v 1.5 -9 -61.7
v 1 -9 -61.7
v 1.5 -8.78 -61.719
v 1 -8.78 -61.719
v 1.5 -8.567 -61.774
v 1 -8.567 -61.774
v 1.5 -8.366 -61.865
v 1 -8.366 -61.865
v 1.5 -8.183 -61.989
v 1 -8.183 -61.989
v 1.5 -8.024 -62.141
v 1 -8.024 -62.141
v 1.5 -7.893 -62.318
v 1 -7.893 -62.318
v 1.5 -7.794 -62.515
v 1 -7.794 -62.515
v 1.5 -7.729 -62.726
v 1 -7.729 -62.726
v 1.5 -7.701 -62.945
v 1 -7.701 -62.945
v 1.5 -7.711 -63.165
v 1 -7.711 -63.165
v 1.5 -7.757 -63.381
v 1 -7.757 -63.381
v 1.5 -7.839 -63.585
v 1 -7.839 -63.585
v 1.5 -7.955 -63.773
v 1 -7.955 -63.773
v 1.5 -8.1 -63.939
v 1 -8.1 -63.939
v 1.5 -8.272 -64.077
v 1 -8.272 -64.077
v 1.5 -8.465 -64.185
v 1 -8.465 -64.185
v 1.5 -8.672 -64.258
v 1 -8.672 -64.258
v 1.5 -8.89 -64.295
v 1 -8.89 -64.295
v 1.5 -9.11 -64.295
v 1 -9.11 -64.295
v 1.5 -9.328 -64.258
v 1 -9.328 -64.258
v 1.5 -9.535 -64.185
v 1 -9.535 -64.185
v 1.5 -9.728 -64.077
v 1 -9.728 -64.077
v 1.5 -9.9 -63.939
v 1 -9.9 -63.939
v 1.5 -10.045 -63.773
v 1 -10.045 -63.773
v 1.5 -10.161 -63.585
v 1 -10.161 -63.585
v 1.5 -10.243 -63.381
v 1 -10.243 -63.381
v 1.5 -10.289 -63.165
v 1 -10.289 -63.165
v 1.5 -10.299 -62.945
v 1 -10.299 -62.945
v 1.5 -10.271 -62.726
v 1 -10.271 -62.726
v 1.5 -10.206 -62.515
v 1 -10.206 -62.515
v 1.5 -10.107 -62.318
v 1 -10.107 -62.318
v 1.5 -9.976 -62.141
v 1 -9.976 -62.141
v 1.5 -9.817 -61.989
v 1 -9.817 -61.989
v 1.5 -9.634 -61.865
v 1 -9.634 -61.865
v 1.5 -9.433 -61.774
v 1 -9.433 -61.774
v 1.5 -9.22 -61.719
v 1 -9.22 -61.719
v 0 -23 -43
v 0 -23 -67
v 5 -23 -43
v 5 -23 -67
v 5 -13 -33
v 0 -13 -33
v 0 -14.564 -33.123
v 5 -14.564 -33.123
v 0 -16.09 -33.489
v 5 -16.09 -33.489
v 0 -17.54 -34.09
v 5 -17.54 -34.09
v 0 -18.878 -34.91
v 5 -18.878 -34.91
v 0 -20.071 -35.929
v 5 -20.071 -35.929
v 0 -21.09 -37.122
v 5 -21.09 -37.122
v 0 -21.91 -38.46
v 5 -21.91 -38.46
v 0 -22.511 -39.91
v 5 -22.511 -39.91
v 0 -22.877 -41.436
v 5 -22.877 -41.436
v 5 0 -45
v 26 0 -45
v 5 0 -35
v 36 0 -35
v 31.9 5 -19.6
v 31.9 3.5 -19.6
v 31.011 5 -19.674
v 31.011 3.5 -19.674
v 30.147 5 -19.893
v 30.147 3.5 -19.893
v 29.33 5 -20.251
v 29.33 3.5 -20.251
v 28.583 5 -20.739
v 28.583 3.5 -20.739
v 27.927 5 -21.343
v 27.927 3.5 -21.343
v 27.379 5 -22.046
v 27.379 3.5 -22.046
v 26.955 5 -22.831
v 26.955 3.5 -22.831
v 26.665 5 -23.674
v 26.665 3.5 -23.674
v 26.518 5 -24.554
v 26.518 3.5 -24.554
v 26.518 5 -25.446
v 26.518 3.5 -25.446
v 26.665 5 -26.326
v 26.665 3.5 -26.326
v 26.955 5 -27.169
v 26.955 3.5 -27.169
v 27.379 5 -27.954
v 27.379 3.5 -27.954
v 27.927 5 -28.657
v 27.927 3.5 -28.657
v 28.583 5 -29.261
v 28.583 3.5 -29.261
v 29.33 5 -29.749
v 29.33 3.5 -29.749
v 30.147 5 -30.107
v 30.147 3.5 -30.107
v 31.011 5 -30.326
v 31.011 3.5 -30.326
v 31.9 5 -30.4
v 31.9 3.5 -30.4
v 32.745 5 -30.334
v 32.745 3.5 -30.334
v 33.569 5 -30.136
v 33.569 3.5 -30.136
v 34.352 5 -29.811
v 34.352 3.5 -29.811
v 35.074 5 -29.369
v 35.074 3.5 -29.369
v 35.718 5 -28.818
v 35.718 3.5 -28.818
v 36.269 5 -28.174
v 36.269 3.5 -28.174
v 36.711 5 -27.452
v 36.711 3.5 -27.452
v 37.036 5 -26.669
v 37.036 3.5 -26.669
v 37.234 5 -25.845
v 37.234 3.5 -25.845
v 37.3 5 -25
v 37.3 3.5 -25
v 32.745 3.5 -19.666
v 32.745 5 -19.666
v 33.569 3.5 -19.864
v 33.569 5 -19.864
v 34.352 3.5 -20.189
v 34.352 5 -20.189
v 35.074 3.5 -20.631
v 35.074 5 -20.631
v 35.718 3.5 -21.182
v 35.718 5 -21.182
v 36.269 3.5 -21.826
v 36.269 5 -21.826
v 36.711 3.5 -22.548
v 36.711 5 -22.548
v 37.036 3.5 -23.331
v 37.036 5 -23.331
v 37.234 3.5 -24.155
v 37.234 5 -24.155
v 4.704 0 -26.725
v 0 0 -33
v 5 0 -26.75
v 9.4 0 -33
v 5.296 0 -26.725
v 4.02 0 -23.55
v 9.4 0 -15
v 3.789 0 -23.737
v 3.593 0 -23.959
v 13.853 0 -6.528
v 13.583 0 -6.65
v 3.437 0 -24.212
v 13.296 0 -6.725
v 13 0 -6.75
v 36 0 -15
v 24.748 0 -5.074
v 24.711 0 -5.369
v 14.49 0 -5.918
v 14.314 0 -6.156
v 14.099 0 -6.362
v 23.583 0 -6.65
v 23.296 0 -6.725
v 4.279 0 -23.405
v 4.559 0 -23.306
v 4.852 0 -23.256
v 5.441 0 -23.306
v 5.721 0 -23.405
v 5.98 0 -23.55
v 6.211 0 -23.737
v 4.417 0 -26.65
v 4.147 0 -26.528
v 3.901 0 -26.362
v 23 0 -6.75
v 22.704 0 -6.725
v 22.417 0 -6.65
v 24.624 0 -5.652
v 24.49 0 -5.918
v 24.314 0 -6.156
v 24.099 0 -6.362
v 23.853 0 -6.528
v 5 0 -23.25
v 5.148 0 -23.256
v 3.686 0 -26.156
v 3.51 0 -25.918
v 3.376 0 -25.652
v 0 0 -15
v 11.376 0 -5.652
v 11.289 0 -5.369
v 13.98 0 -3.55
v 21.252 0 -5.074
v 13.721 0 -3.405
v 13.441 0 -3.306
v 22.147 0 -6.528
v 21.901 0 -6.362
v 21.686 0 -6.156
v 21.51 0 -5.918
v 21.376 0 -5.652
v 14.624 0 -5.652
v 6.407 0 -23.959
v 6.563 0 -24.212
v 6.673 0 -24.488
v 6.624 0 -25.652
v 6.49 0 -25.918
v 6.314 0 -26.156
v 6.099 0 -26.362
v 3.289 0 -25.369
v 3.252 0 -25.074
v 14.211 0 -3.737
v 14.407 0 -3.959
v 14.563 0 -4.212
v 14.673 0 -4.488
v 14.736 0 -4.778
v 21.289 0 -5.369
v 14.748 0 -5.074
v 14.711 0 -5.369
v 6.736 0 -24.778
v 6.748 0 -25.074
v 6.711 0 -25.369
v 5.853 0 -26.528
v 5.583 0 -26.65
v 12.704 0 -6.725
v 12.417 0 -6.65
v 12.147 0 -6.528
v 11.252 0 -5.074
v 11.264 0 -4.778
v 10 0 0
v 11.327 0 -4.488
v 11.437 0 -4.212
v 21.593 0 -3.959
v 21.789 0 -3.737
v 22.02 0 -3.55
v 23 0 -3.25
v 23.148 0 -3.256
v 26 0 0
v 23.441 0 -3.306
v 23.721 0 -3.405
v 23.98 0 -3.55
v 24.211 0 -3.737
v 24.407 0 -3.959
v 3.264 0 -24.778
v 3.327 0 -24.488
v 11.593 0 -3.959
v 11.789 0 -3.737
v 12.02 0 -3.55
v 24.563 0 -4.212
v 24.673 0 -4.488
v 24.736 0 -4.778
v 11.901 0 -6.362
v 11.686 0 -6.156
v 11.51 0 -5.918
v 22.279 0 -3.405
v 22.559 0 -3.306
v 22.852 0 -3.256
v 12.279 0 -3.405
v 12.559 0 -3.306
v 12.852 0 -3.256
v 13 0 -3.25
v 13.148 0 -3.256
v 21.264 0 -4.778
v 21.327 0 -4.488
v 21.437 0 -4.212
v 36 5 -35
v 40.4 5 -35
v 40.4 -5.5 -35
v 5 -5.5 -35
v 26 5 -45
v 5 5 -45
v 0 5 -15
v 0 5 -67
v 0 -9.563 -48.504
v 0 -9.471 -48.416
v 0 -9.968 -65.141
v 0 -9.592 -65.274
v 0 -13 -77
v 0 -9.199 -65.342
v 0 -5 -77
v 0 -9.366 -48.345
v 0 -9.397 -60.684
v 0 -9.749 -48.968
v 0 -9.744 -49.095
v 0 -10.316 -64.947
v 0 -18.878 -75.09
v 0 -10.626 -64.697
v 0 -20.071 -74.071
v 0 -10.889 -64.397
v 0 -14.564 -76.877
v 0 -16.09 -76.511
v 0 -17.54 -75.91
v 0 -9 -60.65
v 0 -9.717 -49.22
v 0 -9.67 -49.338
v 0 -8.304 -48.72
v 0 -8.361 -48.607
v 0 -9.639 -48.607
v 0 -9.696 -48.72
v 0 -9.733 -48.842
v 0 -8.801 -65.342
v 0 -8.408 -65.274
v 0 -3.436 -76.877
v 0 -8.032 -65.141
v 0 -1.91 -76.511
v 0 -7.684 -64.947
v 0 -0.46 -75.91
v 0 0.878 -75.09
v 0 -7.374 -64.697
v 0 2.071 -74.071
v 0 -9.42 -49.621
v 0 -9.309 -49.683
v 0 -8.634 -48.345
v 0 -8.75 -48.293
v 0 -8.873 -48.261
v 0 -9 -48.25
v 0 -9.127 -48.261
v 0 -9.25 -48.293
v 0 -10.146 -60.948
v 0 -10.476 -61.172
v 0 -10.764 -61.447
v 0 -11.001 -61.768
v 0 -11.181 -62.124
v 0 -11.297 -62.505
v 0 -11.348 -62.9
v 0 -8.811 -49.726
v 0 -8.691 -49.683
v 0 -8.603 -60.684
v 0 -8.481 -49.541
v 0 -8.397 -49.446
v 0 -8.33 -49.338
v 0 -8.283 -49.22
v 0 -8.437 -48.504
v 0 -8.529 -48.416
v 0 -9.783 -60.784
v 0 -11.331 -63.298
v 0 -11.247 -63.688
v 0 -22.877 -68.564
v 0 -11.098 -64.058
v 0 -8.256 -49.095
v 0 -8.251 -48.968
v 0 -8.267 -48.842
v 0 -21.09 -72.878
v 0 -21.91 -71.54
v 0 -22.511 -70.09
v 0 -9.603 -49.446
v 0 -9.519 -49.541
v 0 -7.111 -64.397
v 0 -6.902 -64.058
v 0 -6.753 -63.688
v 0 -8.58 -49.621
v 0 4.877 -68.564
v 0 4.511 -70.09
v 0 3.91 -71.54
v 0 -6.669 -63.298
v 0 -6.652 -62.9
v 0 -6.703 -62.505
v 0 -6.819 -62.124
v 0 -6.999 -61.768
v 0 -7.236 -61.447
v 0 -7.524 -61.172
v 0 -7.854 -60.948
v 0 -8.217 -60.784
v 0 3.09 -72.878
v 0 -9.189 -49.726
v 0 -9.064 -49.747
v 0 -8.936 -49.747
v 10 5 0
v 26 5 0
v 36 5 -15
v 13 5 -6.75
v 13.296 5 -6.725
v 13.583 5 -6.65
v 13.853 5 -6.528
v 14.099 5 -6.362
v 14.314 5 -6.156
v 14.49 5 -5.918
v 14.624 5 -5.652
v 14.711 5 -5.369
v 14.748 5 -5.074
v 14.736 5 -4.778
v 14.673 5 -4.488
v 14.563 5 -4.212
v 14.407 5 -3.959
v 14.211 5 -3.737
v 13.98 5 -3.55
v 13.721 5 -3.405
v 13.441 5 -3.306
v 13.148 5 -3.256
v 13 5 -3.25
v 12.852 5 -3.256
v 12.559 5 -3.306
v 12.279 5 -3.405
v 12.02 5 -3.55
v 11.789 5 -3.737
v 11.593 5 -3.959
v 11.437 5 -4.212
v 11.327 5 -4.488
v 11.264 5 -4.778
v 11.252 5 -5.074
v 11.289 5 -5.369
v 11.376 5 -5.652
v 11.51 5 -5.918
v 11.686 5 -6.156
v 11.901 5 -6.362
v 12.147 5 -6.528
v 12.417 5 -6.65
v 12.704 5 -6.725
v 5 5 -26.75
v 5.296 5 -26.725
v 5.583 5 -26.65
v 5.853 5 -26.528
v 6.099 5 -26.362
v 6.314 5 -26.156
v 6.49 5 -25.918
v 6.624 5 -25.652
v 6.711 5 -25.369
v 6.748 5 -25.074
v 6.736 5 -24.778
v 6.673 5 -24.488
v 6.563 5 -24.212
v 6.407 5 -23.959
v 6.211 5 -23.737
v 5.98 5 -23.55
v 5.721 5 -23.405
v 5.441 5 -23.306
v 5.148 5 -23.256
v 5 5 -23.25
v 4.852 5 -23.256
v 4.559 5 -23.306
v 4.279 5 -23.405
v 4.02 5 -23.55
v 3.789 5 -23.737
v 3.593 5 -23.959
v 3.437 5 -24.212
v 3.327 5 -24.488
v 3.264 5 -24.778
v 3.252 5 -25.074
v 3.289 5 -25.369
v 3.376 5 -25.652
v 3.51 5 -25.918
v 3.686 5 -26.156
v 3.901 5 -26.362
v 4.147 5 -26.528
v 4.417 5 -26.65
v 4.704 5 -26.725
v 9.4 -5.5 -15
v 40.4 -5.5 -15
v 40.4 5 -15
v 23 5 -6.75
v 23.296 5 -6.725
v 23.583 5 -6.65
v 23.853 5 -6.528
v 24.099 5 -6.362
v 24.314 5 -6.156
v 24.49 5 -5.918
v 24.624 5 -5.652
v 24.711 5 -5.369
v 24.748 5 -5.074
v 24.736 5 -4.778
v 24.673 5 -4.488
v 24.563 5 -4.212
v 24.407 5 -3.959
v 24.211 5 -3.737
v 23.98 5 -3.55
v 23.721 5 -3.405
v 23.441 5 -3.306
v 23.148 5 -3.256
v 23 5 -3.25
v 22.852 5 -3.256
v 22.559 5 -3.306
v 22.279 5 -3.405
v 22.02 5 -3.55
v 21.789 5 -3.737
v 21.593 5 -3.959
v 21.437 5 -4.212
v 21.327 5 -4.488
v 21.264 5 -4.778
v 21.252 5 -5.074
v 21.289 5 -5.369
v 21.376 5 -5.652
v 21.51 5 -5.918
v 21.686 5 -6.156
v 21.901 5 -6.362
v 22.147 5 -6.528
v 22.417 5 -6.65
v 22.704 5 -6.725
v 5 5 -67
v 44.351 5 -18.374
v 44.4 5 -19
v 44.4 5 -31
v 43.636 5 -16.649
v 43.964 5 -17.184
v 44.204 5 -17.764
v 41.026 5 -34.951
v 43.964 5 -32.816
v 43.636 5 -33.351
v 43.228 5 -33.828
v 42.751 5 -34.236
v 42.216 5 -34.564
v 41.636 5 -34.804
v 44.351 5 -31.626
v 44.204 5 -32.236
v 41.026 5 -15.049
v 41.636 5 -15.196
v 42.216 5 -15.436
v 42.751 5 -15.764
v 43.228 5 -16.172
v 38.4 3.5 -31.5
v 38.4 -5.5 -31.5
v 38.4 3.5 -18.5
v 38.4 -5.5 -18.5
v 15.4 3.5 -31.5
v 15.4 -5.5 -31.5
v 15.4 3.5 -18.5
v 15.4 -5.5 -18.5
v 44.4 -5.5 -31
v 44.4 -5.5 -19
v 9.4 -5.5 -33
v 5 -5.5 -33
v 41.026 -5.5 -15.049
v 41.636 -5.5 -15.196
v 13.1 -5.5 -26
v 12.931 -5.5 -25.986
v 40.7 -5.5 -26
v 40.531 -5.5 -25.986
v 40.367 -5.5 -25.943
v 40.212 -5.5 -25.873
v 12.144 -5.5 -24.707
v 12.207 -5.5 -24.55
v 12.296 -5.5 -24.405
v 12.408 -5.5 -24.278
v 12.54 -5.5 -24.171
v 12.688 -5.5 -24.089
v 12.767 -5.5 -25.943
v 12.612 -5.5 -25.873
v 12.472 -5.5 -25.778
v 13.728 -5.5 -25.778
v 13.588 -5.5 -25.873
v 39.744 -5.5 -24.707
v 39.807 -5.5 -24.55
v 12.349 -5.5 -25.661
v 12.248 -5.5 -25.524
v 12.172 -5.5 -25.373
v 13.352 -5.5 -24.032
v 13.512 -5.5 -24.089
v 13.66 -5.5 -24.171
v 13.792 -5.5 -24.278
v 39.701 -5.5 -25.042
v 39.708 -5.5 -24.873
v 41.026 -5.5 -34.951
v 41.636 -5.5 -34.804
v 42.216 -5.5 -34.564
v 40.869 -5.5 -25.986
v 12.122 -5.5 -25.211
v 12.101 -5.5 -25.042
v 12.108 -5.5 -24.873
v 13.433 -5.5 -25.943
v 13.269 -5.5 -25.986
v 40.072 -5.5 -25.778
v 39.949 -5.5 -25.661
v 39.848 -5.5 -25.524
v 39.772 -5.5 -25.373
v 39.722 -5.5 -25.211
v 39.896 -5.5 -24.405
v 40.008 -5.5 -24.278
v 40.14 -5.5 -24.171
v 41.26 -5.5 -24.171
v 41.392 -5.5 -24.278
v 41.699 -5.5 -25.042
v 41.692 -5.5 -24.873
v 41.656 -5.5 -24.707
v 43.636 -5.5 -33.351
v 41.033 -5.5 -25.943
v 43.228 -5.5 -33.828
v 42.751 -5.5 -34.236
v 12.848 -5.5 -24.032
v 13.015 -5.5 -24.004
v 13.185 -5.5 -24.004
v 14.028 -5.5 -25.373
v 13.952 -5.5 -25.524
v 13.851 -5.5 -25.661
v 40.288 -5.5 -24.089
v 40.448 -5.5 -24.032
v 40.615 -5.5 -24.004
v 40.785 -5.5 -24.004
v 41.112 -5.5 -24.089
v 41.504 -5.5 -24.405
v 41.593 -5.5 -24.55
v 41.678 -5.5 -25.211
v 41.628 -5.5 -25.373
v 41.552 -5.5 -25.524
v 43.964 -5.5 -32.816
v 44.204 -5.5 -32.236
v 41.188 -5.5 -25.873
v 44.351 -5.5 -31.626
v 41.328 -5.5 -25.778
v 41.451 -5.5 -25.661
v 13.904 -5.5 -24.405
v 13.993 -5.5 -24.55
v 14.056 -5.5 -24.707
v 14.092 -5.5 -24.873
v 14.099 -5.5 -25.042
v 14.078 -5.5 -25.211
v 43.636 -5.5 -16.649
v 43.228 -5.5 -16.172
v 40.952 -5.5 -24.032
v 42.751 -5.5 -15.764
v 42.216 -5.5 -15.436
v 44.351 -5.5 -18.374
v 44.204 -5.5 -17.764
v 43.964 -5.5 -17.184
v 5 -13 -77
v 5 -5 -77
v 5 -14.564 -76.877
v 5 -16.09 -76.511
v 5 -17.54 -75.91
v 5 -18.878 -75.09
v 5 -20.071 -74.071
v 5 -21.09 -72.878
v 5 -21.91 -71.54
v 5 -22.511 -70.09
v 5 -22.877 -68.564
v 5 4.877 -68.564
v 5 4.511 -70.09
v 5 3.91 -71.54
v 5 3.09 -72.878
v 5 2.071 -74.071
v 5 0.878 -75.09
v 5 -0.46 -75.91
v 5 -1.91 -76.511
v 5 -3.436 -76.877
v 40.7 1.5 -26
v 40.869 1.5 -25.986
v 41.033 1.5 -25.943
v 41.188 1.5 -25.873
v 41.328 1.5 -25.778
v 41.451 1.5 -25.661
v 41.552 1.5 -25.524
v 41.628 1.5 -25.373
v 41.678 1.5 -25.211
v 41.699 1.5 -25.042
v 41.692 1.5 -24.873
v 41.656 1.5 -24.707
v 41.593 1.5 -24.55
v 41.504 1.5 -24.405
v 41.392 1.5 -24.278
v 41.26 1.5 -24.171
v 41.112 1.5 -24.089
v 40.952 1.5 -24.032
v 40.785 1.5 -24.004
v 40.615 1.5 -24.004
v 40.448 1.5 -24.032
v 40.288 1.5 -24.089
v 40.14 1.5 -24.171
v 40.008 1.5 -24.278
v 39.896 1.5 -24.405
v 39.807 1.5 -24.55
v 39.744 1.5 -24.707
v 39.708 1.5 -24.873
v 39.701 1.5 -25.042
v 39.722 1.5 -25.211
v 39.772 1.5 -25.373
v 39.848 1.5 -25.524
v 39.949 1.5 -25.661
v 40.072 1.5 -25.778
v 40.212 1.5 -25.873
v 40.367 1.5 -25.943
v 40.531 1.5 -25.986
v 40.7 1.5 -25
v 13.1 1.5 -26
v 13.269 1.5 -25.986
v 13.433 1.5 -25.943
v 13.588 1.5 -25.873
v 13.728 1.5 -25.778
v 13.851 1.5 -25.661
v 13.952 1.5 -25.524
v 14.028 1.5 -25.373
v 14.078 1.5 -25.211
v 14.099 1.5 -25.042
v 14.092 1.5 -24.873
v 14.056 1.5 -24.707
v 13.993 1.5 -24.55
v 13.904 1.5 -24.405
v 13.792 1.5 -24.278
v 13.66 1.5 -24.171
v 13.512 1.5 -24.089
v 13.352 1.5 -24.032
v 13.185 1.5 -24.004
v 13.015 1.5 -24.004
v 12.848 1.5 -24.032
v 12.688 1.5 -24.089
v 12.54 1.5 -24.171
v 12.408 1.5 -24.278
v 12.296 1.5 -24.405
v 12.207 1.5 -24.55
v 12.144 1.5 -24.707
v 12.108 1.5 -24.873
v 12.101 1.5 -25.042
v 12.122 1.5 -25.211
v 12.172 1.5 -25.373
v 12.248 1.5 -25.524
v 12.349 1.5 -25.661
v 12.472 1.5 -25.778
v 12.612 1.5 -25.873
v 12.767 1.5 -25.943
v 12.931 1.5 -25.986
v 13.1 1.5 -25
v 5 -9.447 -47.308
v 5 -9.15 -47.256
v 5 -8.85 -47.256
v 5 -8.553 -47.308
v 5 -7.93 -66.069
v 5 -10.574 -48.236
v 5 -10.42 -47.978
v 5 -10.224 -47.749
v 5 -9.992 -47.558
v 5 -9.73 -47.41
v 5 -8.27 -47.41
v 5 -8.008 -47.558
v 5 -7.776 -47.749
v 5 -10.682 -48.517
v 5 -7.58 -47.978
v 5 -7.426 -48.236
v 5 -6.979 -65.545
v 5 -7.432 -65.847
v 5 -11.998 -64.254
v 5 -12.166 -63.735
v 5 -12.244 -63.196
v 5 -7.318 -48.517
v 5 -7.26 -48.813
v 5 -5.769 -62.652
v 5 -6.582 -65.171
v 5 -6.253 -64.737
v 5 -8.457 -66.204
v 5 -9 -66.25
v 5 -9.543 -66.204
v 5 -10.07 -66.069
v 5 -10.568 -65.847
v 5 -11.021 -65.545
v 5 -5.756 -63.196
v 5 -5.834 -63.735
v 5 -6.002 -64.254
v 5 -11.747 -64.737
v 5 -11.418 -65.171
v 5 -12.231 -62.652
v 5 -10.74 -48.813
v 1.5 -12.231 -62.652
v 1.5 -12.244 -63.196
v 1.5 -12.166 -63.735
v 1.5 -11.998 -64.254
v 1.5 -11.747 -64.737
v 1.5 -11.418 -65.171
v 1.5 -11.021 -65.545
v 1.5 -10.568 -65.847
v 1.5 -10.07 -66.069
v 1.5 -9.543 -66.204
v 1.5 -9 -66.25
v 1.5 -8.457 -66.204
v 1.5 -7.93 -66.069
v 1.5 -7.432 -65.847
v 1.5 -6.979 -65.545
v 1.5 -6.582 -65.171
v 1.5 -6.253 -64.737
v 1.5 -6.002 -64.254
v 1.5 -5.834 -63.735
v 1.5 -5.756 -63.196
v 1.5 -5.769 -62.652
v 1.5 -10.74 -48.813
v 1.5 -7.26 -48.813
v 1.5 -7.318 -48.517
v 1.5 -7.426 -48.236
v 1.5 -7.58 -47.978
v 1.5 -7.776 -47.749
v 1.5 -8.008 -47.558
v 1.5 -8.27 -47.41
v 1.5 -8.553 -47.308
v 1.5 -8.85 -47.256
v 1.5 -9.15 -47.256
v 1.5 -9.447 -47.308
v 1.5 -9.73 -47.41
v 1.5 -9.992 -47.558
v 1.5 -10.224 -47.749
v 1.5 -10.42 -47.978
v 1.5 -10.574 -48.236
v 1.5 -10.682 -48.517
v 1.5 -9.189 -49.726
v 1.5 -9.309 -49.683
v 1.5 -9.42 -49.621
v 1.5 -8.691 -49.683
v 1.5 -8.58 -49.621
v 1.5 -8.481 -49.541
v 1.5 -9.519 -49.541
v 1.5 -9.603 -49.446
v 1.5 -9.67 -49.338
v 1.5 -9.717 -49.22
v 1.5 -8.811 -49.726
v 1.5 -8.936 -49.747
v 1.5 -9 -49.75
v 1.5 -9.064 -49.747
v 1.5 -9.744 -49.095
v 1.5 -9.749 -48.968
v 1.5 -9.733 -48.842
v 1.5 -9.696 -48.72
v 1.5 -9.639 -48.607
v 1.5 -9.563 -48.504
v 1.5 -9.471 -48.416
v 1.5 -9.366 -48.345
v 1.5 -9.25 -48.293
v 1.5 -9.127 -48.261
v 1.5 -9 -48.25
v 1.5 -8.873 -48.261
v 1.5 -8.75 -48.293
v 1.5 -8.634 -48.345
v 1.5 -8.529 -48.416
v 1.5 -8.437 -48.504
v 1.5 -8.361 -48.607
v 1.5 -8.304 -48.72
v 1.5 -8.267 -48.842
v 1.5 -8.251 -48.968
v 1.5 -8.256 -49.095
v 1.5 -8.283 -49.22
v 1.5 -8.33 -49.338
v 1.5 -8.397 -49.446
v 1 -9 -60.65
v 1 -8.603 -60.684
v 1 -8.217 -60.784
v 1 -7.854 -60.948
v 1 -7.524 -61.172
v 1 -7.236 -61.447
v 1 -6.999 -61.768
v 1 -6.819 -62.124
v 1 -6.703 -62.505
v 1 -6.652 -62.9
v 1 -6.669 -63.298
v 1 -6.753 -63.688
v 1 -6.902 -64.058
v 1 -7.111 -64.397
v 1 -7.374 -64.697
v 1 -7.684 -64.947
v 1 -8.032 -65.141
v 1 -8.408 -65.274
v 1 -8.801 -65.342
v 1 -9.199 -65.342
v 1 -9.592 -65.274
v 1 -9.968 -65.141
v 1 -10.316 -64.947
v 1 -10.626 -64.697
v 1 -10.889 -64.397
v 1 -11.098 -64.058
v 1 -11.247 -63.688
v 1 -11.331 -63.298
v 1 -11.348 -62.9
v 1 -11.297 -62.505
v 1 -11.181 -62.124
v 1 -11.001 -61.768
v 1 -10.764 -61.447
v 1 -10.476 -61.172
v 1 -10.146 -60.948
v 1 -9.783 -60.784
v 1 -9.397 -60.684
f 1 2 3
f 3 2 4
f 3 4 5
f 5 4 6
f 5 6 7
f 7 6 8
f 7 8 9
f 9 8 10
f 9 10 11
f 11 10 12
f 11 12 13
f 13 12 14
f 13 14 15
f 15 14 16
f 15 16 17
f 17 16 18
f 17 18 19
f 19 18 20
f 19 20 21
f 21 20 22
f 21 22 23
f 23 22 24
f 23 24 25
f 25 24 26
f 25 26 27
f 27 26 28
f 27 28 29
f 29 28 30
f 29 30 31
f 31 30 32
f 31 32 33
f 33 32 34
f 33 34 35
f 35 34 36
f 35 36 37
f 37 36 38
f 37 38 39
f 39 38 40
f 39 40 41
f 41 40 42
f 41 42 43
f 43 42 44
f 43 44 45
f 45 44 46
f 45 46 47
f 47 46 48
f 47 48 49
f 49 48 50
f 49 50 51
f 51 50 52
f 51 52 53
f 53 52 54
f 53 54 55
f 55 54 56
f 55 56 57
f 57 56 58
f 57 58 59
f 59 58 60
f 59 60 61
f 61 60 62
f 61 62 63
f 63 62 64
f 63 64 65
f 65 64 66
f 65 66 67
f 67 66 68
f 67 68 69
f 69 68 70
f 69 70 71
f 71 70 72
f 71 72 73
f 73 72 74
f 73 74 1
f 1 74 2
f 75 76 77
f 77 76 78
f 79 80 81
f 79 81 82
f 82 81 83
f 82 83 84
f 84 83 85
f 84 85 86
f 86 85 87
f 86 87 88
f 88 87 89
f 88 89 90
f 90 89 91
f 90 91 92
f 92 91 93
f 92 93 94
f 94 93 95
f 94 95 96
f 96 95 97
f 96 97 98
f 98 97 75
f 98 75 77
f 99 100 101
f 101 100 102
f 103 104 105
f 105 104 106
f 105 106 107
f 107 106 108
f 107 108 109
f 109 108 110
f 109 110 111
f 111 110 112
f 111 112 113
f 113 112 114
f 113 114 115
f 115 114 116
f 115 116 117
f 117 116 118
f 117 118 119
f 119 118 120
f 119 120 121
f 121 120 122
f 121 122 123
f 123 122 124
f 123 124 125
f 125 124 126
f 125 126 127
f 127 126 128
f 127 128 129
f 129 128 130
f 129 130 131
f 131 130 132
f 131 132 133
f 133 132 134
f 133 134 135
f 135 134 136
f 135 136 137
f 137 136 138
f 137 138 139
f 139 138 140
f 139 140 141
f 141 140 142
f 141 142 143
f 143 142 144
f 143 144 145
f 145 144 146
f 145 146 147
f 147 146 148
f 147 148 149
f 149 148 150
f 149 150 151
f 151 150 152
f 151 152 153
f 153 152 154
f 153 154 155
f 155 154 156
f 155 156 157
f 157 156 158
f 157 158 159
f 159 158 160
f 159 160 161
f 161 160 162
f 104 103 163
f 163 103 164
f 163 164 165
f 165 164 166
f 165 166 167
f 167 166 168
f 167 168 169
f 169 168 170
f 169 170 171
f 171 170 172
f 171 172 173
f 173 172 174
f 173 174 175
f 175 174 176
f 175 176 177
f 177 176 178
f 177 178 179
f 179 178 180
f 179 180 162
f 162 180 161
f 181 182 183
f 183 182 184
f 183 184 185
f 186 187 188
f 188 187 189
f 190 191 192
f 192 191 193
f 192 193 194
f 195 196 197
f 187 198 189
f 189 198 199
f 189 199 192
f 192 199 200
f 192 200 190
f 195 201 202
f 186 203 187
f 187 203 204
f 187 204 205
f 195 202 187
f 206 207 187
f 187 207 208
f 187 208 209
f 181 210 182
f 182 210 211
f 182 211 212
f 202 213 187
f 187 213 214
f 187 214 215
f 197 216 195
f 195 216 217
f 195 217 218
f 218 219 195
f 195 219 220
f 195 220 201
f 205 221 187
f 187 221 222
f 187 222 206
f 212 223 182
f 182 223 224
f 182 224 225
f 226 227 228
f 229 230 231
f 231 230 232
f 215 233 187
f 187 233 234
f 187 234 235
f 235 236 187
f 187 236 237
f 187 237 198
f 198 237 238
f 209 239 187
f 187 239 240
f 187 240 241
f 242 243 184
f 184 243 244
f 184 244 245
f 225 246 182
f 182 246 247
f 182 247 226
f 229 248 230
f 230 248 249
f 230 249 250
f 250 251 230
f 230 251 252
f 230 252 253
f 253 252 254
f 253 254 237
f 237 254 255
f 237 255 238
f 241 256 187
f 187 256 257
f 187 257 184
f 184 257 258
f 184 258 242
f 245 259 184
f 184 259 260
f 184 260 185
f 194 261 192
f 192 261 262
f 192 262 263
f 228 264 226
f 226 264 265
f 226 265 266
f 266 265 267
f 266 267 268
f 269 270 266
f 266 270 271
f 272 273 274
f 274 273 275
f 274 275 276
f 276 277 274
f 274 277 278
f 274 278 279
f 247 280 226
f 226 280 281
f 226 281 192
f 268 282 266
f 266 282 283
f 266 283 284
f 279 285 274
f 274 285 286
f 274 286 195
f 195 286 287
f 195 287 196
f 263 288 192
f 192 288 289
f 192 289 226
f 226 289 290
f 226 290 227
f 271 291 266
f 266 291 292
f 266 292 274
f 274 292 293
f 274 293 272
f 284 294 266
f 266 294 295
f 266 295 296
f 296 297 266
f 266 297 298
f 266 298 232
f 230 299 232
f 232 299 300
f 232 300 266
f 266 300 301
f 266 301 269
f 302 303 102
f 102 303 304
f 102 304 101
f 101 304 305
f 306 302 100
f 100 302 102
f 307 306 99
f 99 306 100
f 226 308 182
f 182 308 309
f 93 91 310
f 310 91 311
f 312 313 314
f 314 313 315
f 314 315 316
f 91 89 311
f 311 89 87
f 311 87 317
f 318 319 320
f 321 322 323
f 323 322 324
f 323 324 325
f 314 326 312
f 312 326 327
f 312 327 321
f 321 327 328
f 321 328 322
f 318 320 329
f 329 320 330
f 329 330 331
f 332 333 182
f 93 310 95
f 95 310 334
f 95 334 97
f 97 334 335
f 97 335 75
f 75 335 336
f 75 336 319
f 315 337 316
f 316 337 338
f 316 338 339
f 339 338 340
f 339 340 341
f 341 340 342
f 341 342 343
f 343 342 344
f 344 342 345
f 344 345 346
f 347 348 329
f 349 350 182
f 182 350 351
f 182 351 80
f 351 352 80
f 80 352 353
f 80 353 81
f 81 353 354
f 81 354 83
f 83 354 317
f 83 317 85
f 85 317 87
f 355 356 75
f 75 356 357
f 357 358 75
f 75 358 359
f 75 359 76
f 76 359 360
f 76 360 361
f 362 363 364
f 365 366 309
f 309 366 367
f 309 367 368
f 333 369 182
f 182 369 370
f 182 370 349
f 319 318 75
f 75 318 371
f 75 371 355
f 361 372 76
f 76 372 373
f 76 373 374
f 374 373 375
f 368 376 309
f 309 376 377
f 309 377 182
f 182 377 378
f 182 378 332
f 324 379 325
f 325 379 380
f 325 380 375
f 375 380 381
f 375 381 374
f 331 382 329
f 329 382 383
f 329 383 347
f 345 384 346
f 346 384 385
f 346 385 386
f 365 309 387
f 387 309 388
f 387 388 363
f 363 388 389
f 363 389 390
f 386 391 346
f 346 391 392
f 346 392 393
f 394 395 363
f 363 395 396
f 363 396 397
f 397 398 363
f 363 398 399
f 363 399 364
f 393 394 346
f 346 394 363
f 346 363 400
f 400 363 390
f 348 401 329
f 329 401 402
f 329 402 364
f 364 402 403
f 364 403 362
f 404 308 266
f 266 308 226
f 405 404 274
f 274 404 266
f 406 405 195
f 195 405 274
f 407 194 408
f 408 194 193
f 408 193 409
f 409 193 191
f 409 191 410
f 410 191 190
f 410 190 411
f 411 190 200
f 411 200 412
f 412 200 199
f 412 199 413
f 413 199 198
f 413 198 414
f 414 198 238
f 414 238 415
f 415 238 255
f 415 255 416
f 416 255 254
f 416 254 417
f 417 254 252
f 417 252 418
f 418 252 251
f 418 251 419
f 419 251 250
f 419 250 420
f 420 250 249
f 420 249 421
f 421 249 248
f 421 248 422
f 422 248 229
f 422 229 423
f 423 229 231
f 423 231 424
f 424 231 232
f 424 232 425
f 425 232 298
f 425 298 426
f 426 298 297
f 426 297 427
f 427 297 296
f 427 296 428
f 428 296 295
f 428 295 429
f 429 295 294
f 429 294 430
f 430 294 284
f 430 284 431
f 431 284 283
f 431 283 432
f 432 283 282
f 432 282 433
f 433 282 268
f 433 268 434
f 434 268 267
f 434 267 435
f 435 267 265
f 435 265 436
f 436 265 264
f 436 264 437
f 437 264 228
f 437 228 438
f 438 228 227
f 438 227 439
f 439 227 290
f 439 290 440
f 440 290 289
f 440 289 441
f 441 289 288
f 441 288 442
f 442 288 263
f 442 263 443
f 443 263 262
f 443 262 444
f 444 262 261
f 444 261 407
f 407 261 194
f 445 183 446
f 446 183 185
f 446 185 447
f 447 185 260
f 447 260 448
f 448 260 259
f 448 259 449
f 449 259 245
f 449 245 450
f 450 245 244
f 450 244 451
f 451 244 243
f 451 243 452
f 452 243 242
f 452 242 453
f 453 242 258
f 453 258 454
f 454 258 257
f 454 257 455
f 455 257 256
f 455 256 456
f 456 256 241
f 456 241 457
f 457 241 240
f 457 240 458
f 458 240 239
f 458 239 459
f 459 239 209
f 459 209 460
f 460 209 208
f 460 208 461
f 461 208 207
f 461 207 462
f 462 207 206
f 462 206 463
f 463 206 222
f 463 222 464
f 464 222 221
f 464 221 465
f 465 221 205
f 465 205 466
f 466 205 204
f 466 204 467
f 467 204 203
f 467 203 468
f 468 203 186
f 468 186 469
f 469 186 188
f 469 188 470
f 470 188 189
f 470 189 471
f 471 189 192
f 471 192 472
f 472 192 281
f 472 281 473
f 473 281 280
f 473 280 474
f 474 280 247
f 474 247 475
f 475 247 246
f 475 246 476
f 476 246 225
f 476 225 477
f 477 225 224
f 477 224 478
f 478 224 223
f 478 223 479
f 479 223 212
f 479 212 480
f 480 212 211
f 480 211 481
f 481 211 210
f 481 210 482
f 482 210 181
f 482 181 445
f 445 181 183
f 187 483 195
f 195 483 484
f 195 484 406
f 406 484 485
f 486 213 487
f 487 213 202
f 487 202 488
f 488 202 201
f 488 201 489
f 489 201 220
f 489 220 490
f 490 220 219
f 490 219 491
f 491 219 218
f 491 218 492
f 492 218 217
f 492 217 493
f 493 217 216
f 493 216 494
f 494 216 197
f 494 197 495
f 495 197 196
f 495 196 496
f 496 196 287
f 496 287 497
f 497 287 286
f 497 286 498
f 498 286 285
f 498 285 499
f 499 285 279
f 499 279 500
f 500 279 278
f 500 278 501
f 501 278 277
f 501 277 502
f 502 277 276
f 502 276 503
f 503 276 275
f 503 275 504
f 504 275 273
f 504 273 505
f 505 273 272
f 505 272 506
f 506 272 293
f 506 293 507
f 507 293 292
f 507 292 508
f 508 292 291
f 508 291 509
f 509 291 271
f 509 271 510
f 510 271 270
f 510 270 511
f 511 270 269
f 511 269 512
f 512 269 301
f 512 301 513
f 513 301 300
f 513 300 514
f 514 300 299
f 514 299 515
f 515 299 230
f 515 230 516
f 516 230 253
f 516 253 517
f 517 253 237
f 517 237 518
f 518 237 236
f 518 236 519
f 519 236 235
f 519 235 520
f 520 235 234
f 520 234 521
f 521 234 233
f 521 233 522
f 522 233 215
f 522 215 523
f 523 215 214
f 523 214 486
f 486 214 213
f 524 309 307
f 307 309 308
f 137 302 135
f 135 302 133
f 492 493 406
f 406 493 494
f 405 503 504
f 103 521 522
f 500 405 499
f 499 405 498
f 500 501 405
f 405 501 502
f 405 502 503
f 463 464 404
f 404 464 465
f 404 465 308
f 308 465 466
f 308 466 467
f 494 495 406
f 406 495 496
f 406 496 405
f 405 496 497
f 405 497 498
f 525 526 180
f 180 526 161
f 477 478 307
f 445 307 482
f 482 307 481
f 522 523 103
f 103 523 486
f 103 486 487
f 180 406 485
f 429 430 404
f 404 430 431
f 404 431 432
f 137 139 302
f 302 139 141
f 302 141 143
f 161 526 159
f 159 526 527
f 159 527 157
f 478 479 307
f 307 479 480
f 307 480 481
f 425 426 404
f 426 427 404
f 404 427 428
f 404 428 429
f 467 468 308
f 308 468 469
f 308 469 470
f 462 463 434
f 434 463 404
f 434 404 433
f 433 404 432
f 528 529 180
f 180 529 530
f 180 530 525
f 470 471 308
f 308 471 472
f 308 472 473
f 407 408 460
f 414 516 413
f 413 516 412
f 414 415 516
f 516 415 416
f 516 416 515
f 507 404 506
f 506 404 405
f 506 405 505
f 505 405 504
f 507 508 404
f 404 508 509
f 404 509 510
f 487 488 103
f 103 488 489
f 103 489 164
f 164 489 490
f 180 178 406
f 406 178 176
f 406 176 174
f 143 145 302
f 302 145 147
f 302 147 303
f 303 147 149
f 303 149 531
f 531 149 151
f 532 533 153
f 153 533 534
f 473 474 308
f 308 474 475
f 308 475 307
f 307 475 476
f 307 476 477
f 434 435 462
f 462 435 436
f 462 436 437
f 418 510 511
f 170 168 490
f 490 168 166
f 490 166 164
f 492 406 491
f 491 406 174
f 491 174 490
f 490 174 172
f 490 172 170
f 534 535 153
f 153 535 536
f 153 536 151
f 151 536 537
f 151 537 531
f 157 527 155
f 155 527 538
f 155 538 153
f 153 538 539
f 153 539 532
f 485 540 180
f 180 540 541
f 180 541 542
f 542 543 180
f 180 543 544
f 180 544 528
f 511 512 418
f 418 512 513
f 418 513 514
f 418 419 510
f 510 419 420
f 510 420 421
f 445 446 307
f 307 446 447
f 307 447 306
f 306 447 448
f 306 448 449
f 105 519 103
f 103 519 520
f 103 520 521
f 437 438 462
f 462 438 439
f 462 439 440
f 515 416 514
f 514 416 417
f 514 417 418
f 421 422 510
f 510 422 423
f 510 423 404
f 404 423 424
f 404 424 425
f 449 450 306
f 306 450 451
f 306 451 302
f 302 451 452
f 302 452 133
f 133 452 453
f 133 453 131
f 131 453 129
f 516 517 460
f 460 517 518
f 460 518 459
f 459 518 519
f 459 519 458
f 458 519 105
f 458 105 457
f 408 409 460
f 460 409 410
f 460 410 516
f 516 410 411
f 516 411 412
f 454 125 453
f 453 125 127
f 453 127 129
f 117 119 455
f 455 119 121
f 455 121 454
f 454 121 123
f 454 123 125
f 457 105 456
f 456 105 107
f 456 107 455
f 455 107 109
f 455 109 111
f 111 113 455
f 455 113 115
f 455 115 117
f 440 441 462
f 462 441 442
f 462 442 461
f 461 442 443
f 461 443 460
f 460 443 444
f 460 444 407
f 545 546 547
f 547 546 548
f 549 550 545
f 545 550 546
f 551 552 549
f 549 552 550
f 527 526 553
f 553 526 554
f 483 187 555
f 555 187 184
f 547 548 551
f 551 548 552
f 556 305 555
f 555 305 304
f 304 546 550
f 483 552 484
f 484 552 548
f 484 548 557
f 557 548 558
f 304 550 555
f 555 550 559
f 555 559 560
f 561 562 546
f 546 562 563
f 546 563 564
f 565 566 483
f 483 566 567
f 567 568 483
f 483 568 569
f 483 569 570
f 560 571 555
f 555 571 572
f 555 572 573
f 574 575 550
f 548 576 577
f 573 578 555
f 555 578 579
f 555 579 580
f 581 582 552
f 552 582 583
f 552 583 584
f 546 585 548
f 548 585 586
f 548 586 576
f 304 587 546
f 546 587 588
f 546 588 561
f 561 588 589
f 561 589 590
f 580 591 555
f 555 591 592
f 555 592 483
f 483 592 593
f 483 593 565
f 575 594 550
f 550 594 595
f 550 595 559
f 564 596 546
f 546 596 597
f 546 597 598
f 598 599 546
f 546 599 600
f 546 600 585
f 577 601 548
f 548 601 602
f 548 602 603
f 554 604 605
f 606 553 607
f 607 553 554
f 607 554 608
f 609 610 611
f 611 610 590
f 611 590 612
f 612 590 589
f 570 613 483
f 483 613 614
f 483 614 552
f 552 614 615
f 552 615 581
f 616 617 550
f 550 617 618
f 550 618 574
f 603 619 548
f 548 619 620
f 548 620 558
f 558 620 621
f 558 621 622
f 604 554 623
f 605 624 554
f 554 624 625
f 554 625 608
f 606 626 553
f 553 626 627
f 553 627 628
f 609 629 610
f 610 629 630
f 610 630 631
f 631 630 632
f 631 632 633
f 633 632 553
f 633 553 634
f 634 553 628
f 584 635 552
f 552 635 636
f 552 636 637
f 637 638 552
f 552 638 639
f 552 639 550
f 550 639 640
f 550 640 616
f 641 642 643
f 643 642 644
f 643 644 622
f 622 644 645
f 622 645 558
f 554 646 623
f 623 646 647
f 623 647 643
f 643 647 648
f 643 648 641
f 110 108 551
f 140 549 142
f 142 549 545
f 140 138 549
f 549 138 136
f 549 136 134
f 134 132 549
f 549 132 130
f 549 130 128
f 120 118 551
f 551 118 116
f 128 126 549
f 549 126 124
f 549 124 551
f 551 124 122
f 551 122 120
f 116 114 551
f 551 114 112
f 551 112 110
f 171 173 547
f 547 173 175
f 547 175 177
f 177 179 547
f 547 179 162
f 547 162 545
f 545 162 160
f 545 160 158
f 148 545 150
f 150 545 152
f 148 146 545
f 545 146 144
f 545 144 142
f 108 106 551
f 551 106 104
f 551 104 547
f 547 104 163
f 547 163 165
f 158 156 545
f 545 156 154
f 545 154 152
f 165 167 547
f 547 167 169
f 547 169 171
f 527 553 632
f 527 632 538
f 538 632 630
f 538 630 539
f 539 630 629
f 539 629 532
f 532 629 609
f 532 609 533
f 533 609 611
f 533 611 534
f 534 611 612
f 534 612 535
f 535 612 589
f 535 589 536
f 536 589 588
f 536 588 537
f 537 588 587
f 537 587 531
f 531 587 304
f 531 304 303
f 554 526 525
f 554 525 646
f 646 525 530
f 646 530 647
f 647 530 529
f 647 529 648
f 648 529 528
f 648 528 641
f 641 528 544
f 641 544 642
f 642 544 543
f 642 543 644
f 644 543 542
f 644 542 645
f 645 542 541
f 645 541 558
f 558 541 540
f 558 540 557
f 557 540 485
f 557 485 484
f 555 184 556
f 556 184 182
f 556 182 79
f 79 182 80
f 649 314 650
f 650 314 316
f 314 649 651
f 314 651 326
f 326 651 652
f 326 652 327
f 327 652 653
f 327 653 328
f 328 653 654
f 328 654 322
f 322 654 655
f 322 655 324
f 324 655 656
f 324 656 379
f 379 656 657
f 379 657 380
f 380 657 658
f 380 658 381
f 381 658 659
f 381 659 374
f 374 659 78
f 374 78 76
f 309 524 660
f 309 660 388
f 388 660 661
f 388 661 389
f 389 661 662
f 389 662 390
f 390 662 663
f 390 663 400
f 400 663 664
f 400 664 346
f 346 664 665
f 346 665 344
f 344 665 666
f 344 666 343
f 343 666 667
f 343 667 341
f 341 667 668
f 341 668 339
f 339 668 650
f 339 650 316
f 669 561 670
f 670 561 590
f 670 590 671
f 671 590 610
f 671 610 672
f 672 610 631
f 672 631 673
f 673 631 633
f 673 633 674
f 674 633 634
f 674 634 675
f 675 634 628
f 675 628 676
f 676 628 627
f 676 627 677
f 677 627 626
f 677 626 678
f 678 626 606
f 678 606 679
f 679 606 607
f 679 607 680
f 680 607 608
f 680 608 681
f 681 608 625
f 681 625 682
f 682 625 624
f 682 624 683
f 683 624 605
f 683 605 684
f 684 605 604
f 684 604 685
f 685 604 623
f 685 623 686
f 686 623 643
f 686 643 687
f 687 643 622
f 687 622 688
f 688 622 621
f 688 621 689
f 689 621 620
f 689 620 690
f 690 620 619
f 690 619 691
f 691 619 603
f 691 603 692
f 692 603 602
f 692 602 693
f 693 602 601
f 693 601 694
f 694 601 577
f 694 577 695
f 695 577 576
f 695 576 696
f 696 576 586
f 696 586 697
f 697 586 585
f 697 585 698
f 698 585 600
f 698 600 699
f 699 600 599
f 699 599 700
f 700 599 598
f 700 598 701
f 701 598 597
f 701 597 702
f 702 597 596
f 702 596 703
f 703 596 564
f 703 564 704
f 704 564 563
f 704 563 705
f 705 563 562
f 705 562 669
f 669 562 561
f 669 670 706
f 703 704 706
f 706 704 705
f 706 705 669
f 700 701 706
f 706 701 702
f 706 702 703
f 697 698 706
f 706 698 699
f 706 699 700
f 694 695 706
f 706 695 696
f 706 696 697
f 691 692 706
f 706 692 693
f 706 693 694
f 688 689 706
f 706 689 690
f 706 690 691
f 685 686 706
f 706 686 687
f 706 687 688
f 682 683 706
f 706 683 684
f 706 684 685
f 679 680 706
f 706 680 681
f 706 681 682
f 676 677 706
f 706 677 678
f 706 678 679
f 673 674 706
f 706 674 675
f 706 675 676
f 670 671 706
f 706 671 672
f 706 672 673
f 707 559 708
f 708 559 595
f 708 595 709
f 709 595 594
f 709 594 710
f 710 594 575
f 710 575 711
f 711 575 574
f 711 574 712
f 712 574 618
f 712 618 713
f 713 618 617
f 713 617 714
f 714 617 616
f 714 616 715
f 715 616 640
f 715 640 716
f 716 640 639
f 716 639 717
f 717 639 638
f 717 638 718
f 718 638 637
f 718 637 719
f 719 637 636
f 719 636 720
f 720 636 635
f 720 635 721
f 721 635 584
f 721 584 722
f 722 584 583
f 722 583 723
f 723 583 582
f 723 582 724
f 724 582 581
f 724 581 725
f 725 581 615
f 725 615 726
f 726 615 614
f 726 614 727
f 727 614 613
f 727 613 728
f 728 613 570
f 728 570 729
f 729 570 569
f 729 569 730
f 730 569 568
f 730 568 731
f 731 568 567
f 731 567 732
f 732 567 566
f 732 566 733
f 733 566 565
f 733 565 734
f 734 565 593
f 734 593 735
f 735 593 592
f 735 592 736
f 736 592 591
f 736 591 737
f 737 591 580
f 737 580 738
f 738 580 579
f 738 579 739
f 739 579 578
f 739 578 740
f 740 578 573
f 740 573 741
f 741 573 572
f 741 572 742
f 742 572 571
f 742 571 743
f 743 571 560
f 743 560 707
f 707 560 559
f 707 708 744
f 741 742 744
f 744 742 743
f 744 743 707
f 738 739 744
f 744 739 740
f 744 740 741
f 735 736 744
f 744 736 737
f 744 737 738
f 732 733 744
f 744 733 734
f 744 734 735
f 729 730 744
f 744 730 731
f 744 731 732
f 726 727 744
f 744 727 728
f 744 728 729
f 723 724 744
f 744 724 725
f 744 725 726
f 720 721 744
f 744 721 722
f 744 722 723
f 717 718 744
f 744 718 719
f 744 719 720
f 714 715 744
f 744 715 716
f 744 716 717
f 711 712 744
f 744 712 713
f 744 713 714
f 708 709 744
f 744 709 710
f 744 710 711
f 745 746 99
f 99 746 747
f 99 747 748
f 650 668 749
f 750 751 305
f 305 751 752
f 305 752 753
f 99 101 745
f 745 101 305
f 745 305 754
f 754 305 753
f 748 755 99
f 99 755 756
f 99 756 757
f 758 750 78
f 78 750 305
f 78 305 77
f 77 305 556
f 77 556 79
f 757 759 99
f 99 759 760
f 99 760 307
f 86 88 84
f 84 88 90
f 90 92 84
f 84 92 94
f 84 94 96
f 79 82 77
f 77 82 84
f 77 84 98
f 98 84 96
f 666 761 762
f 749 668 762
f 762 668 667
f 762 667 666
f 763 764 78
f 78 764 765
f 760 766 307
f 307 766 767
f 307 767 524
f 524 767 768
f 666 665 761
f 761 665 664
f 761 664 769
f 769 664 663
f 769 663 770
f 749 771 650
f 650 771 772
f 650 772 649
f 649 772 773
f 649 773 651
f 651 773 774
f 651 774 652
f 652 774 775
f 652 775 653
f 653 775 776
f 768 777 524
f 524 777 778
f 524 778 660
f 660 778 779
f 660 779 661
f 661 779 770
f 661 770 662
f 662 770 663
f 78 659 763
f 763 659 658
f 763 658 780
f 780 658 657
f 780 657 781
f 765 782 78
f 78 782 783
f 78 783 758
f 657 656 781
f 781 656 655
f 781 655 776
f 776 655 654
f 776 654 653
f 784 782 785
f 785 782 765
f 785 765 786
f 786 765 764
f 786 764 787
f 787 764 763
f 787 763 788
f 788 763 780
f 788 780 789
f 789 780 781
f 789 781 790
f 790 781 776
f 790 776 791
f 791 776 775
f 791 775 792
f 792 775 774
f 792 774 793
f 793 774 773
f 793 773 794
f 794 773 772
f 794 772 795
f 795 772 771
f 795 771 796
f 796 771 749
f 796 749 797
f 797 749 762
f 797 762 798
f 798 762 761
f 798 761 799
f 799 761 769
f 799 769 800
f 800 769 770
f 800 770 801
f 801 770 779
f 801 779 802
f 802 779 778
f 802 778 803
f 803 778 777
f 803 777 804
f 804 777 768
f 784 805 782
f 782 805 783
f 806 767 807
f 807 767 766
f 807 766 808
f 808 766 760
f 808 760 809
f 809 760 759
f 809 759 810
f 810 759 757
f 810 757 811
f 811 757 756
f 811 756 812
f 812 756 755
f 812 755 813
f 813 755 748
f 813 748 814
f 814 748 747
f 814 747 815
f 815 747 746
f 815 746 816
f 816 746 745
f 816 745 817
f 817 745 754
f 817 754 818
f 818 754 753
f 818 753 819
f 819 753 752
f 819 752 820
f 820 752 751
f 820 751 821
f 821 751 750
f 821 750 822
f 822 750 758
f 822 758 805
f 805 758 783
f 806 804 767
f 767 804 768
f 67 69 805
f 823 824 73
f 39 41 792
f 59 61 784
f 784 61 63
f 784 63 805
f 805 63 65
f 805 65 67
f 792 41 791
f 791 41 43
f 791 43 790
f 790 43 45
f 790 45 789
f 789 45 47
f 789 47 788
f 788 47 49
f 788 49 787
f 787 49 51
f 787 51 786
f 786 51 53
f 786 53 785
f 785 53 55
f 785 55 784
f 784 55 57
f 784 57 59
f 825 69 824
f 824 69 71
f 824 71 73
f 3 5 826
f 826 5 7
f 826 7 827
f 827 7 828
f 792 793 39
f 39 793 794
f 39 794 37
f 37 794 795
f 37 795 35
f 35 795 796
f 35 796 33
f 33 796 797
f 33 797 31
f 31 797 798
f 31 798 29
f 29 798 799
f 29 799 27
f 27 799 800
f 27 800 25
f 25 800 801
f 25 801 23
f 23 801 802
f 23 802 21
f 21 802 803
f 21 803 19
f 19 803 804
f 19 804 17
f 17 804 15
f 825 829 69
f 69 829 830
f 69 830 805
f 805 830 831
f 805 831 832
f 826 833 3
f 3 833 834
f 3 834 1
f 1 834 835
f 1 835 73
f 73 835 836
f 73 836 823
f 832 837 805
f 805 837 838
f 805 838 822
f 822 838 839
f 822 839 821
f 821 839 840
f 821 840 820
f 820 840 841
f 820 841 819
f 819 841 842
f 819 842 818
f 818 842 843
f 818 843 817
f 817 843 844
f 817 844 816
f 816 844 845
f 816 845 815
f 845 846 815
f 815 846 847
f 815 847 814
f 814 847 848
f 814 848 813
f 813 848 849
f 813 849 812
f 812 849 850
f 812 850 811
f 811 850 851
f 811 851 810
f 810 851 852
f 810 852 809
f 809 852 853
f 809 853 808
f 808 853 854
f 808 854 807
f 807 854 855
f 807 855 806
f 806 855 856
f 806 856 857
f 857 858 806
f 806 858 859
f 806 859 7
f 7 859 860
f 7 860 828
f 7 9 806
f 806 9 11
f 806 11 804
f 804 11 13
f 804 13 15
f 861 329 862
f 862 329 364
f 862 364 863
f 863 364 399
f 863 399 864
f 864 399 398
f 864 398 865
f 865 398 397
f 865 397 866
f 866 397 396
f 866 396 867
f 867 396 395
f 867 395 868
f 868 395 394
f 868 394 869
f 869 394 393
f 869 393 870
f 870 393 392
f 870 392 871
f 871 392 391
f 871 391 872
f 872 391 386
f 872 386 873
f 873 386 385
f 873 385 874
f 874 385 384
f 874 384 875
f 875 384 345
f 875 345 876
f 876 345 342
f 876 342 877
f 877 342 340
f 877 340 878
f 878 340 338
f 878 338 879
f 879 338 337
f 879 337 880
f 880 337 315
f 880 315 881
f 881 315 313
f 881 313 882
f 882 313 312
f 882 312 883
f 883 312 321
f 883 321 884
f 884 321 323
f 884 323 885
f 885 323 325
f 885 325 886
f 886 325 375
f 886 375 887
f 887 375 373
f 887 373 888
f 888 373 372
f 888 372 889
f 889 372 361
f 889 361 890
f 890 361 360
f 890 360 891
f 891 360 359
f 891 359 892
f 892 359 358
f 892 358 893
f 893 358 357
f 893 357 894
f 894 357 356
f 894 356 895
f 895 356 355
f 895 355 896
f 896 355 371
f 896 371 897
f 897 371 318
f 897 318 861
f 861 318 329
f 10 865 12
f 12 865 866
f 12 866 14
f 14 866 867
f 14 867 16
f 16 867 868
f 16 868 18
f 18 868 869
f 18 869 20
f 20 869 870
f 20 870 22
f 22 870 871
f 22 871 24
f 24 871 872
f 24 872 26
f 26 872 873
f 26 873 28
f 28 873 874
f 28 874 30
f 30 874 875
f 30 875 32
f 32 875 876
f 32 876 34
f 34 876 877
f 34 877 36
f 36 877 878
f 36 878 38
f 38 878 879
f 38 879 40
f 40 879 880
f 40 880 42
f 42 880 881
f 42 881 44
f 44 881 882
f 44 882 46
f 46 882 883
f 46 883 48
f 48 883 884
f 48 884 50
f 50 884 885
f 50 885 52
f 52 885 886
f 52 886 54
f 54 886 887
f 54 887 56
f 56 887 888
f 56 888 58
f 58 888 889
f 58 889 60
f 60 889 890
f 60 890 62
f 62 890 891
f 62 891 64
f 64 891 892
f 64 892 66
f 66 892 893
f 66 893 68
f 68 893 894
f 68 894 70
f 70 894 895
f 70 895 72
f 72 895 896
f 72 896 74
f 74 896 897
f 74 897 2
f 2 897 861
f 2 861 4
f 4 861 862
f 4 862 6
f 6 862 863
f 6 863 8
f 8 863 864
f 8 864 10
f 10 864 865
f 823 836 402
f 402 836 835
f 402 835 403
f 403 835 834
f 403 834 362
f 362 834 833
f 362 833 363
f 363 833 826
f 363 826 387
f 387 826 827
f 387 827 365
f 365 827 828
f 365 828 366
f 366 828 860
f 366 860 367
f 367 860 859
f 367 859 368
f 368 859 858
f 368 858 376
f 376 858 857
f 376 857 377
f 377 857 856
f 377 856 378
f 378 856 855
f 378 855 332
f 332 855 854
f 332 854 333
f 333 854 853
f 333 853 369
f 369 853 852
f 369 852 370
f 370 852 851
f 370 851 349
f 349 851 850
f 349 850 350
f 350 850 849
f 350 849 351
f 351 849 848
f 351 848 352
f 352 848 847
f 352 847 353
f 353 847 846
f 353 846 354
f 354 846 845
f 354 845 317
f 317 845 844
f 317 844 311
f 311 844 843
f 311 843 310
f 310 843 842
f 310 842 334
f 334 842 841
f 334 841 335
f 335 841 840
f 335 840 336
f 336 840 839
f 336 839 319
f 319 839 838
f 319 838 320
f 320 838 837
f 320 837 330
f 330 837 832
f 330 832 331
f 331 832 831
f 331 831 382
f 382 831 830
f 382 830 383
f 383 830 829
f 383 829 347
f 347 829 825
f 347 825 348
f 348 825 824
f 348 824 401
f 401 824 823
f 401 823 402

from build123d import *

# Parameters (mm, degrees)
SKETCH1_R                = 1.75
SKETCH1_W                = 7.2
SKETCH1_H                = 5.4
BOSS_EXTRUDE1_DEPTH      = 5
FILLET5_RADIUS           = 10
FILLET5_LENGTH           = 5
FILLET2_R                = 5.4
FILLET6_R                = 5.4
SKETCH3_W                = 6
SKETCH3_H                = 13
BOSS_EXTRUDE4_DEPTH      = 5.5
SKETCH5_W                = 23
SKETCH5_H                = 13
CUT_EXTRUDE1_DEPTH       = 3.5
CUT_EXTRUDE2_DEPTH       = 76.201396264
FILLET9_R                = 4
BOSS_EXTRUDE7_DEPTH      = 32
BOSS_EXTRUDE7_DEPTH_BACK = 12
SKETCH7_W                = 10
SKETCH7_H                = 28
FILLET10_R               = 10
SKETCH9_R                = 1
CUT_EXTRUDE4_DEPTH       = 7
SKETCH15_W               = 5
SKETCH15_H               = 32
CUT_EXTRUDE7_DEPTH       = 30
CUT_EXTRUDE8_DEPTH       = 5
CUT_EXTRUDE9_DEPTH       = 3.5
SKETCH22_R               = 1.3
CUT_EXTRUDE10_DEPTH      = 1.5
SKETCH22_3_R             = 2.35
SKETCH22_3_R_2           = 1.3
CUT_EXTRUDE11_DEPTH      = 1
SKETCH23_R               = 0.75
CUT_EXTRUDE12_DEPTH      = 1.75


with BuildPart() as part:
    # Sketch1 → Boss-Extrude1 (new body)
    # profile 1 of 4: a face of its own
    with BuildSketch(Plane(origin=(0, 0, 0), x_dir=(1, 0, 0), z_dir=(0, 1, 0))):
        with BuildLine():
            Line((3.25, 25), (0, 25))
            Line((0, 25), (0, 15))
            Line((0, 15), (10, 0))
            Line((10, 0), (26, 0))
            Line((26, 0), (36, 15))
            Line((36, 15), (60, 15))
            Line((60, 15), (60, 25))
            Line((60, 25), (44.5, 25))
            Line((44.5, 25), (44.5, 19.6))
            Line((44.5, 19.6), (37.3, 19.6))
            Line((37.3, 19.6), (26.5, 19.6))
            Line((26.5, 19.6), (26.5, 25))
            Line((26.5, 25), (6.75, 25))
            ThreePointArc((6.75, 25), (5, 23.25), (3.25, 25))
        make_face()
        with Locations(Location((13, 5, 0), (0, 0, 270))):
            Circle(SKETCH1_R, mode=Mode.SUBTRACT)
        with Locations(Location((23, 5, 0), (0, 0, 270))):
            Circle(SKETCH1_R, mode=Mode.SUBTRACT)
    # profile 2 of 4: a face of its own
    with BuildSketch(Plane(origin=(0, 0, 0), x_dir=(1, 0, 0), z_dir=(0, 1, 0))):
        with BuildLine():
            Line((10, 45), (0, 33.819660113))
            Line((0, 33.819660113), (0, 25))
            Line((0, 25), (3.25, 25))
            ThreePointArc((3.25, 25), (5, 26.75), (6.75, 25))
            Line((6.75, 25), (26.5, 25))
            Line((26.5, 25), (26.5, 30.4))
            Line((26.5, 30.4), (37.3, 30.4))
            Line((37.3, 30.4), (44.5, 30.4))
            Line((44.5, 30.4), (44.5, 25))
            Line((44.5, 25), (60, 25))
            Line((60, 25), (60, 35))
            Line((60, 35), (36, 35))
            Line((36, 35), (26, 45))
            Line((26, 45), (10, 45))
        make_face()
    # profile 3 of 4: a face of its own
    with BuildSketch(Plane(origin=(0, 0, 0), x_dir=(1, 0, 0), z_dir=(0, 1, 0))):
        with Locations((40.9, 27.7)):
            Rectangle(SKETCH1_W, SKETCH1_H)
    # profile 4 of 4: a face of its own
    with BuildSketch(Plane(origin=(0, 0, 0), x_dir=(1, 0, 0), z_dir=(0, 1, 0))):
        with Locations((40.9, 22.3)):
            Rectangle(SKETCH1_W, SKETCH1_H)
    extrude(amount=BOSS_EXTRUDE1_DEPTH)

    # Fillet5: full round fillet: the end face becomes a half cylinder, R = half its width
    fillet5_face = Plane((60, 2.5, -25), x_dir=(0, -1, 0), z_dir=(1, 0, 0))  # on the end face: x along it, z out of the body
    fillet5_slab = fillet5_face.offset(-FILLET5_RADIUS / 2) * Box(FILLET5_LENGTH, 2 * FILLET5_RADIUS, FILLET5_RADIUS, mode=Mode.PRIVATE)  # the body's end, R deep
    fillet5_round = Plane((50, 2.5, -25), x_dir=(1, 0, 0), z_dir=(0, -1, 0)) * Cylinder(FILLET5_RADIUS, FILLET5_LENGTH, mode=Mode.PRIVATE)  # its axis R under the face
    add(fillet5_slab - fillet5_round, mode=Mode.SUBTRACT)

    # Fillet2
    fillet2_edges = [part.edges().sort_by_distance(p)[0] for p in [
        (26.5, 2.5, -30.4),
        (26.5, 2.5, -19.6),
    ]]
    fillet(fillet2_edges, radius=FILLET2_R - 0.0001)  # a hair under: the kernel refuses the full size

    # Fillet6
    fillet6_edges = [part.edges().sort_by_distance(p)[0] for p in [
        (37.3, 2.5, -19.6),
        (37.3, 2.5, -30.4),
    ]]
    fillet(fillet6_edges, radius=FILLET6_R - 0.0001)  # a hair under: the kernel refuses the full size

    # Sketch3 → Boss-Extrude4 (add)
    with BuildSketch(Plane.XZ):
        with Locations((12.4, -25)):
            Rectangle(SKETCH3_W, SKETCH3_H)
        Polygon((38.4, -25), (38.4, -31.5), (44.4, -31.5), (44.4, -18.5), (38.4, -18.5), align=None)
        Polygon((31.9, -31.5), (15.4, -31.5), (9.4, -31.5), (9.4, -35), (36, -35), (44.4, -35), (44.4, -31.5), (38.4, -31.5), align=None)
        Polygon((9.4, -18.5), (15.4, -18.5), (31.9, -18.5), (38.4, -18.5), (44.4, -18.5), (44.4, -15), (36, -15), (9.4, -15), align=None)
    extrude(amount=BOSS_EXTRUDE4_DEPTH)

    # Sketch5 → Cut-Extrude1 (cut)
    with BuildSketch(Plane.XZ):
        with Locations((26.9, -25)):
            Rectangle(SKETCH5_W, SKETCH5_H)
    extrude(amount=-CUT_EXTRUDE1_DEPTH, mode=Mode.SUBTRACT)

    # Sketch6 → Cut-Extrude2 (cut, through all)
    with BuildSketch(Plane.XZ):
        with BuildLine():
            Line((44.4, -15), (44.4, -35))
            Line((44.4, -35), (50, -35))
            ThreePointArc((50, -35), (60, -25), (50, -15))
            Line((50, -15), (44.4, -15))
        make_face()
    extrude(amount=-CUT_EXTRUDE2_DEPTH, mode=Mode.SUBTRACT)

    # Fillet9
    fillet9_edges = [part.edges().sort_by_distance(p)[0] for p in [
        (44.4, -0.25, -35),
        (44.4, -0.25, -15),
    ]]
    fillet(fillet9_edges, radius=FILLET9_R)

    # Sketch7 → Boss-Extrude7 (add, two sides: drawn at the far end of the back side and taken through both)
    with BuildSketch(Plane(origin=(0, 0, -45), x_dir=(-1, 0, 0), z_dir=(0, 0, -1)).offset(-BOSS_EXTRUDE7_DEPTH_BACK)):
        with Locations((-5, -9)):
            Rectangle(SKETCH7_W, SKETCH7_H)
    extrude(amount=BOSS_EXTRUDE7_DEPTH + BOSS_EXTRUDE7_DEPTH_BACK)

    # Fillet10
    fillet10_edges = [part.edges().sort_by_distance(p)[0] for p in [
        (5, 5, -77),
        (5, -23, -33),
        (5, -23, -77),
    ]]
    fillet(fillet10_edges, radius=FILLET10_R)

    # Sketch9 → Cut-Extrude4 (cut)
    with BuildSketch(Plane.XZ.offset(5.5)):
        with Locations(Location((13.1, -25, 0), (0, 0, 270))):
            Circle(SKETCH9_R)
        with Locations(Location((40.7, -25, 0), (0, 0, 270))):
            Circle(SKETCH9_R)
    extrude(amount=-CUT_EXTRUDE4_DEPTH, mode=Mode.SUBTRACT)

    # Sketch15 → Cut-Extrude7 (cut)
    with BuildSketch(Plane(origin=(0, 5, 0), x_dir=(1, 0, 0), z_dir=(0, 1, 0))):
        with Locations((7.5, 61)):
            Rectangle(SKETCH15_W, SKETCH15_H)
    extrude(amount=-CUT_EXTRUDE7_DEPTH, mode=Mode.SUBTRACT)

    # Sketch17 → Cut-Extrude8 (cut)
    with BuildSketch(Plane(origin=(10, 0, 0), x_dir=(0, 0, -1), z_dir=(1, 0, 0))):
        with BuildLine():
            Line((45, -23), (45, 0))
            Line((45, 0), (35, 0))
            Line((35, 0), (35, -5.5))
            Line((35, -5.5), (33, -5.5))
            Line((33, -5.5), (33, -13))
            ThreePointArc((33, -13), (35.928932188, -20.071067812), (43, -23))
            Line((43, -23), (45, -23))
        make_face()
    extrude(amount=-CUT_EXTRUDE8_DEPTH, mode=Mode.SUBTRACT)

    # Sketch8 → Cut-Extrude9 (cut)
    with BuildSketch(Plane(origin=(5, 0, 0), x_dir=(0, 0, -1), z_dir=(1, 0, 0))):
        with BuildLine():
            Line((62.651785714, -5.768708182), (48.8125, -7.260073637))
            ThreePointArc((48.8125, -7.260073637), (47.25, -9), (48.8125, -10.739926363))
            Line((48.8125, -10.739926363), (62.651785714, -12.231291818))
            ThreePointArc((62.651785714, -12.231291818), (66.25, -9), (62.651785714, -5.768708182))
        make_face()
    extrude(amount=-CUT_EXTRUDE9_DEPTH, mode=Mode.SUBTRACT)

    # Sketch22 → Cut-Extrude10 (cut)
    with BuildSketch(Plane.ZY):
        with Locations((-63, -9)):
            Circle(SKETCH22_R)
    extrude(amount=-CUT_EXTRUDE10_DEPTH, mode=Mode.SUBTRACT)

    # Sketch22<3> → Cut-Extrude11 (cut)
    with BuildSketch(Plane.ZY):
        with Locations((-63, -9)):
            Circle(SKETCH22_3_R)
        with Locations((-63, -9)):
            Circle(SKETCH22_3_R_2, mode=Mode.SUBTRACT)
    extrude(amount=-CUT_EXTRUDE11_DEPTH, mode=Mode.SUBTRACT)

    # Sketch23 → Cut-Extrude12 (cut)
    with BuildSketch(Plane.ZY):
        with Locations((-49, -9)):
            Circle(SKETCH23_R)
    extrude(amount=-CUT_EXTRUDE12_DEPTH, mode=Mode.SUBTRACT)


solid = part.part
